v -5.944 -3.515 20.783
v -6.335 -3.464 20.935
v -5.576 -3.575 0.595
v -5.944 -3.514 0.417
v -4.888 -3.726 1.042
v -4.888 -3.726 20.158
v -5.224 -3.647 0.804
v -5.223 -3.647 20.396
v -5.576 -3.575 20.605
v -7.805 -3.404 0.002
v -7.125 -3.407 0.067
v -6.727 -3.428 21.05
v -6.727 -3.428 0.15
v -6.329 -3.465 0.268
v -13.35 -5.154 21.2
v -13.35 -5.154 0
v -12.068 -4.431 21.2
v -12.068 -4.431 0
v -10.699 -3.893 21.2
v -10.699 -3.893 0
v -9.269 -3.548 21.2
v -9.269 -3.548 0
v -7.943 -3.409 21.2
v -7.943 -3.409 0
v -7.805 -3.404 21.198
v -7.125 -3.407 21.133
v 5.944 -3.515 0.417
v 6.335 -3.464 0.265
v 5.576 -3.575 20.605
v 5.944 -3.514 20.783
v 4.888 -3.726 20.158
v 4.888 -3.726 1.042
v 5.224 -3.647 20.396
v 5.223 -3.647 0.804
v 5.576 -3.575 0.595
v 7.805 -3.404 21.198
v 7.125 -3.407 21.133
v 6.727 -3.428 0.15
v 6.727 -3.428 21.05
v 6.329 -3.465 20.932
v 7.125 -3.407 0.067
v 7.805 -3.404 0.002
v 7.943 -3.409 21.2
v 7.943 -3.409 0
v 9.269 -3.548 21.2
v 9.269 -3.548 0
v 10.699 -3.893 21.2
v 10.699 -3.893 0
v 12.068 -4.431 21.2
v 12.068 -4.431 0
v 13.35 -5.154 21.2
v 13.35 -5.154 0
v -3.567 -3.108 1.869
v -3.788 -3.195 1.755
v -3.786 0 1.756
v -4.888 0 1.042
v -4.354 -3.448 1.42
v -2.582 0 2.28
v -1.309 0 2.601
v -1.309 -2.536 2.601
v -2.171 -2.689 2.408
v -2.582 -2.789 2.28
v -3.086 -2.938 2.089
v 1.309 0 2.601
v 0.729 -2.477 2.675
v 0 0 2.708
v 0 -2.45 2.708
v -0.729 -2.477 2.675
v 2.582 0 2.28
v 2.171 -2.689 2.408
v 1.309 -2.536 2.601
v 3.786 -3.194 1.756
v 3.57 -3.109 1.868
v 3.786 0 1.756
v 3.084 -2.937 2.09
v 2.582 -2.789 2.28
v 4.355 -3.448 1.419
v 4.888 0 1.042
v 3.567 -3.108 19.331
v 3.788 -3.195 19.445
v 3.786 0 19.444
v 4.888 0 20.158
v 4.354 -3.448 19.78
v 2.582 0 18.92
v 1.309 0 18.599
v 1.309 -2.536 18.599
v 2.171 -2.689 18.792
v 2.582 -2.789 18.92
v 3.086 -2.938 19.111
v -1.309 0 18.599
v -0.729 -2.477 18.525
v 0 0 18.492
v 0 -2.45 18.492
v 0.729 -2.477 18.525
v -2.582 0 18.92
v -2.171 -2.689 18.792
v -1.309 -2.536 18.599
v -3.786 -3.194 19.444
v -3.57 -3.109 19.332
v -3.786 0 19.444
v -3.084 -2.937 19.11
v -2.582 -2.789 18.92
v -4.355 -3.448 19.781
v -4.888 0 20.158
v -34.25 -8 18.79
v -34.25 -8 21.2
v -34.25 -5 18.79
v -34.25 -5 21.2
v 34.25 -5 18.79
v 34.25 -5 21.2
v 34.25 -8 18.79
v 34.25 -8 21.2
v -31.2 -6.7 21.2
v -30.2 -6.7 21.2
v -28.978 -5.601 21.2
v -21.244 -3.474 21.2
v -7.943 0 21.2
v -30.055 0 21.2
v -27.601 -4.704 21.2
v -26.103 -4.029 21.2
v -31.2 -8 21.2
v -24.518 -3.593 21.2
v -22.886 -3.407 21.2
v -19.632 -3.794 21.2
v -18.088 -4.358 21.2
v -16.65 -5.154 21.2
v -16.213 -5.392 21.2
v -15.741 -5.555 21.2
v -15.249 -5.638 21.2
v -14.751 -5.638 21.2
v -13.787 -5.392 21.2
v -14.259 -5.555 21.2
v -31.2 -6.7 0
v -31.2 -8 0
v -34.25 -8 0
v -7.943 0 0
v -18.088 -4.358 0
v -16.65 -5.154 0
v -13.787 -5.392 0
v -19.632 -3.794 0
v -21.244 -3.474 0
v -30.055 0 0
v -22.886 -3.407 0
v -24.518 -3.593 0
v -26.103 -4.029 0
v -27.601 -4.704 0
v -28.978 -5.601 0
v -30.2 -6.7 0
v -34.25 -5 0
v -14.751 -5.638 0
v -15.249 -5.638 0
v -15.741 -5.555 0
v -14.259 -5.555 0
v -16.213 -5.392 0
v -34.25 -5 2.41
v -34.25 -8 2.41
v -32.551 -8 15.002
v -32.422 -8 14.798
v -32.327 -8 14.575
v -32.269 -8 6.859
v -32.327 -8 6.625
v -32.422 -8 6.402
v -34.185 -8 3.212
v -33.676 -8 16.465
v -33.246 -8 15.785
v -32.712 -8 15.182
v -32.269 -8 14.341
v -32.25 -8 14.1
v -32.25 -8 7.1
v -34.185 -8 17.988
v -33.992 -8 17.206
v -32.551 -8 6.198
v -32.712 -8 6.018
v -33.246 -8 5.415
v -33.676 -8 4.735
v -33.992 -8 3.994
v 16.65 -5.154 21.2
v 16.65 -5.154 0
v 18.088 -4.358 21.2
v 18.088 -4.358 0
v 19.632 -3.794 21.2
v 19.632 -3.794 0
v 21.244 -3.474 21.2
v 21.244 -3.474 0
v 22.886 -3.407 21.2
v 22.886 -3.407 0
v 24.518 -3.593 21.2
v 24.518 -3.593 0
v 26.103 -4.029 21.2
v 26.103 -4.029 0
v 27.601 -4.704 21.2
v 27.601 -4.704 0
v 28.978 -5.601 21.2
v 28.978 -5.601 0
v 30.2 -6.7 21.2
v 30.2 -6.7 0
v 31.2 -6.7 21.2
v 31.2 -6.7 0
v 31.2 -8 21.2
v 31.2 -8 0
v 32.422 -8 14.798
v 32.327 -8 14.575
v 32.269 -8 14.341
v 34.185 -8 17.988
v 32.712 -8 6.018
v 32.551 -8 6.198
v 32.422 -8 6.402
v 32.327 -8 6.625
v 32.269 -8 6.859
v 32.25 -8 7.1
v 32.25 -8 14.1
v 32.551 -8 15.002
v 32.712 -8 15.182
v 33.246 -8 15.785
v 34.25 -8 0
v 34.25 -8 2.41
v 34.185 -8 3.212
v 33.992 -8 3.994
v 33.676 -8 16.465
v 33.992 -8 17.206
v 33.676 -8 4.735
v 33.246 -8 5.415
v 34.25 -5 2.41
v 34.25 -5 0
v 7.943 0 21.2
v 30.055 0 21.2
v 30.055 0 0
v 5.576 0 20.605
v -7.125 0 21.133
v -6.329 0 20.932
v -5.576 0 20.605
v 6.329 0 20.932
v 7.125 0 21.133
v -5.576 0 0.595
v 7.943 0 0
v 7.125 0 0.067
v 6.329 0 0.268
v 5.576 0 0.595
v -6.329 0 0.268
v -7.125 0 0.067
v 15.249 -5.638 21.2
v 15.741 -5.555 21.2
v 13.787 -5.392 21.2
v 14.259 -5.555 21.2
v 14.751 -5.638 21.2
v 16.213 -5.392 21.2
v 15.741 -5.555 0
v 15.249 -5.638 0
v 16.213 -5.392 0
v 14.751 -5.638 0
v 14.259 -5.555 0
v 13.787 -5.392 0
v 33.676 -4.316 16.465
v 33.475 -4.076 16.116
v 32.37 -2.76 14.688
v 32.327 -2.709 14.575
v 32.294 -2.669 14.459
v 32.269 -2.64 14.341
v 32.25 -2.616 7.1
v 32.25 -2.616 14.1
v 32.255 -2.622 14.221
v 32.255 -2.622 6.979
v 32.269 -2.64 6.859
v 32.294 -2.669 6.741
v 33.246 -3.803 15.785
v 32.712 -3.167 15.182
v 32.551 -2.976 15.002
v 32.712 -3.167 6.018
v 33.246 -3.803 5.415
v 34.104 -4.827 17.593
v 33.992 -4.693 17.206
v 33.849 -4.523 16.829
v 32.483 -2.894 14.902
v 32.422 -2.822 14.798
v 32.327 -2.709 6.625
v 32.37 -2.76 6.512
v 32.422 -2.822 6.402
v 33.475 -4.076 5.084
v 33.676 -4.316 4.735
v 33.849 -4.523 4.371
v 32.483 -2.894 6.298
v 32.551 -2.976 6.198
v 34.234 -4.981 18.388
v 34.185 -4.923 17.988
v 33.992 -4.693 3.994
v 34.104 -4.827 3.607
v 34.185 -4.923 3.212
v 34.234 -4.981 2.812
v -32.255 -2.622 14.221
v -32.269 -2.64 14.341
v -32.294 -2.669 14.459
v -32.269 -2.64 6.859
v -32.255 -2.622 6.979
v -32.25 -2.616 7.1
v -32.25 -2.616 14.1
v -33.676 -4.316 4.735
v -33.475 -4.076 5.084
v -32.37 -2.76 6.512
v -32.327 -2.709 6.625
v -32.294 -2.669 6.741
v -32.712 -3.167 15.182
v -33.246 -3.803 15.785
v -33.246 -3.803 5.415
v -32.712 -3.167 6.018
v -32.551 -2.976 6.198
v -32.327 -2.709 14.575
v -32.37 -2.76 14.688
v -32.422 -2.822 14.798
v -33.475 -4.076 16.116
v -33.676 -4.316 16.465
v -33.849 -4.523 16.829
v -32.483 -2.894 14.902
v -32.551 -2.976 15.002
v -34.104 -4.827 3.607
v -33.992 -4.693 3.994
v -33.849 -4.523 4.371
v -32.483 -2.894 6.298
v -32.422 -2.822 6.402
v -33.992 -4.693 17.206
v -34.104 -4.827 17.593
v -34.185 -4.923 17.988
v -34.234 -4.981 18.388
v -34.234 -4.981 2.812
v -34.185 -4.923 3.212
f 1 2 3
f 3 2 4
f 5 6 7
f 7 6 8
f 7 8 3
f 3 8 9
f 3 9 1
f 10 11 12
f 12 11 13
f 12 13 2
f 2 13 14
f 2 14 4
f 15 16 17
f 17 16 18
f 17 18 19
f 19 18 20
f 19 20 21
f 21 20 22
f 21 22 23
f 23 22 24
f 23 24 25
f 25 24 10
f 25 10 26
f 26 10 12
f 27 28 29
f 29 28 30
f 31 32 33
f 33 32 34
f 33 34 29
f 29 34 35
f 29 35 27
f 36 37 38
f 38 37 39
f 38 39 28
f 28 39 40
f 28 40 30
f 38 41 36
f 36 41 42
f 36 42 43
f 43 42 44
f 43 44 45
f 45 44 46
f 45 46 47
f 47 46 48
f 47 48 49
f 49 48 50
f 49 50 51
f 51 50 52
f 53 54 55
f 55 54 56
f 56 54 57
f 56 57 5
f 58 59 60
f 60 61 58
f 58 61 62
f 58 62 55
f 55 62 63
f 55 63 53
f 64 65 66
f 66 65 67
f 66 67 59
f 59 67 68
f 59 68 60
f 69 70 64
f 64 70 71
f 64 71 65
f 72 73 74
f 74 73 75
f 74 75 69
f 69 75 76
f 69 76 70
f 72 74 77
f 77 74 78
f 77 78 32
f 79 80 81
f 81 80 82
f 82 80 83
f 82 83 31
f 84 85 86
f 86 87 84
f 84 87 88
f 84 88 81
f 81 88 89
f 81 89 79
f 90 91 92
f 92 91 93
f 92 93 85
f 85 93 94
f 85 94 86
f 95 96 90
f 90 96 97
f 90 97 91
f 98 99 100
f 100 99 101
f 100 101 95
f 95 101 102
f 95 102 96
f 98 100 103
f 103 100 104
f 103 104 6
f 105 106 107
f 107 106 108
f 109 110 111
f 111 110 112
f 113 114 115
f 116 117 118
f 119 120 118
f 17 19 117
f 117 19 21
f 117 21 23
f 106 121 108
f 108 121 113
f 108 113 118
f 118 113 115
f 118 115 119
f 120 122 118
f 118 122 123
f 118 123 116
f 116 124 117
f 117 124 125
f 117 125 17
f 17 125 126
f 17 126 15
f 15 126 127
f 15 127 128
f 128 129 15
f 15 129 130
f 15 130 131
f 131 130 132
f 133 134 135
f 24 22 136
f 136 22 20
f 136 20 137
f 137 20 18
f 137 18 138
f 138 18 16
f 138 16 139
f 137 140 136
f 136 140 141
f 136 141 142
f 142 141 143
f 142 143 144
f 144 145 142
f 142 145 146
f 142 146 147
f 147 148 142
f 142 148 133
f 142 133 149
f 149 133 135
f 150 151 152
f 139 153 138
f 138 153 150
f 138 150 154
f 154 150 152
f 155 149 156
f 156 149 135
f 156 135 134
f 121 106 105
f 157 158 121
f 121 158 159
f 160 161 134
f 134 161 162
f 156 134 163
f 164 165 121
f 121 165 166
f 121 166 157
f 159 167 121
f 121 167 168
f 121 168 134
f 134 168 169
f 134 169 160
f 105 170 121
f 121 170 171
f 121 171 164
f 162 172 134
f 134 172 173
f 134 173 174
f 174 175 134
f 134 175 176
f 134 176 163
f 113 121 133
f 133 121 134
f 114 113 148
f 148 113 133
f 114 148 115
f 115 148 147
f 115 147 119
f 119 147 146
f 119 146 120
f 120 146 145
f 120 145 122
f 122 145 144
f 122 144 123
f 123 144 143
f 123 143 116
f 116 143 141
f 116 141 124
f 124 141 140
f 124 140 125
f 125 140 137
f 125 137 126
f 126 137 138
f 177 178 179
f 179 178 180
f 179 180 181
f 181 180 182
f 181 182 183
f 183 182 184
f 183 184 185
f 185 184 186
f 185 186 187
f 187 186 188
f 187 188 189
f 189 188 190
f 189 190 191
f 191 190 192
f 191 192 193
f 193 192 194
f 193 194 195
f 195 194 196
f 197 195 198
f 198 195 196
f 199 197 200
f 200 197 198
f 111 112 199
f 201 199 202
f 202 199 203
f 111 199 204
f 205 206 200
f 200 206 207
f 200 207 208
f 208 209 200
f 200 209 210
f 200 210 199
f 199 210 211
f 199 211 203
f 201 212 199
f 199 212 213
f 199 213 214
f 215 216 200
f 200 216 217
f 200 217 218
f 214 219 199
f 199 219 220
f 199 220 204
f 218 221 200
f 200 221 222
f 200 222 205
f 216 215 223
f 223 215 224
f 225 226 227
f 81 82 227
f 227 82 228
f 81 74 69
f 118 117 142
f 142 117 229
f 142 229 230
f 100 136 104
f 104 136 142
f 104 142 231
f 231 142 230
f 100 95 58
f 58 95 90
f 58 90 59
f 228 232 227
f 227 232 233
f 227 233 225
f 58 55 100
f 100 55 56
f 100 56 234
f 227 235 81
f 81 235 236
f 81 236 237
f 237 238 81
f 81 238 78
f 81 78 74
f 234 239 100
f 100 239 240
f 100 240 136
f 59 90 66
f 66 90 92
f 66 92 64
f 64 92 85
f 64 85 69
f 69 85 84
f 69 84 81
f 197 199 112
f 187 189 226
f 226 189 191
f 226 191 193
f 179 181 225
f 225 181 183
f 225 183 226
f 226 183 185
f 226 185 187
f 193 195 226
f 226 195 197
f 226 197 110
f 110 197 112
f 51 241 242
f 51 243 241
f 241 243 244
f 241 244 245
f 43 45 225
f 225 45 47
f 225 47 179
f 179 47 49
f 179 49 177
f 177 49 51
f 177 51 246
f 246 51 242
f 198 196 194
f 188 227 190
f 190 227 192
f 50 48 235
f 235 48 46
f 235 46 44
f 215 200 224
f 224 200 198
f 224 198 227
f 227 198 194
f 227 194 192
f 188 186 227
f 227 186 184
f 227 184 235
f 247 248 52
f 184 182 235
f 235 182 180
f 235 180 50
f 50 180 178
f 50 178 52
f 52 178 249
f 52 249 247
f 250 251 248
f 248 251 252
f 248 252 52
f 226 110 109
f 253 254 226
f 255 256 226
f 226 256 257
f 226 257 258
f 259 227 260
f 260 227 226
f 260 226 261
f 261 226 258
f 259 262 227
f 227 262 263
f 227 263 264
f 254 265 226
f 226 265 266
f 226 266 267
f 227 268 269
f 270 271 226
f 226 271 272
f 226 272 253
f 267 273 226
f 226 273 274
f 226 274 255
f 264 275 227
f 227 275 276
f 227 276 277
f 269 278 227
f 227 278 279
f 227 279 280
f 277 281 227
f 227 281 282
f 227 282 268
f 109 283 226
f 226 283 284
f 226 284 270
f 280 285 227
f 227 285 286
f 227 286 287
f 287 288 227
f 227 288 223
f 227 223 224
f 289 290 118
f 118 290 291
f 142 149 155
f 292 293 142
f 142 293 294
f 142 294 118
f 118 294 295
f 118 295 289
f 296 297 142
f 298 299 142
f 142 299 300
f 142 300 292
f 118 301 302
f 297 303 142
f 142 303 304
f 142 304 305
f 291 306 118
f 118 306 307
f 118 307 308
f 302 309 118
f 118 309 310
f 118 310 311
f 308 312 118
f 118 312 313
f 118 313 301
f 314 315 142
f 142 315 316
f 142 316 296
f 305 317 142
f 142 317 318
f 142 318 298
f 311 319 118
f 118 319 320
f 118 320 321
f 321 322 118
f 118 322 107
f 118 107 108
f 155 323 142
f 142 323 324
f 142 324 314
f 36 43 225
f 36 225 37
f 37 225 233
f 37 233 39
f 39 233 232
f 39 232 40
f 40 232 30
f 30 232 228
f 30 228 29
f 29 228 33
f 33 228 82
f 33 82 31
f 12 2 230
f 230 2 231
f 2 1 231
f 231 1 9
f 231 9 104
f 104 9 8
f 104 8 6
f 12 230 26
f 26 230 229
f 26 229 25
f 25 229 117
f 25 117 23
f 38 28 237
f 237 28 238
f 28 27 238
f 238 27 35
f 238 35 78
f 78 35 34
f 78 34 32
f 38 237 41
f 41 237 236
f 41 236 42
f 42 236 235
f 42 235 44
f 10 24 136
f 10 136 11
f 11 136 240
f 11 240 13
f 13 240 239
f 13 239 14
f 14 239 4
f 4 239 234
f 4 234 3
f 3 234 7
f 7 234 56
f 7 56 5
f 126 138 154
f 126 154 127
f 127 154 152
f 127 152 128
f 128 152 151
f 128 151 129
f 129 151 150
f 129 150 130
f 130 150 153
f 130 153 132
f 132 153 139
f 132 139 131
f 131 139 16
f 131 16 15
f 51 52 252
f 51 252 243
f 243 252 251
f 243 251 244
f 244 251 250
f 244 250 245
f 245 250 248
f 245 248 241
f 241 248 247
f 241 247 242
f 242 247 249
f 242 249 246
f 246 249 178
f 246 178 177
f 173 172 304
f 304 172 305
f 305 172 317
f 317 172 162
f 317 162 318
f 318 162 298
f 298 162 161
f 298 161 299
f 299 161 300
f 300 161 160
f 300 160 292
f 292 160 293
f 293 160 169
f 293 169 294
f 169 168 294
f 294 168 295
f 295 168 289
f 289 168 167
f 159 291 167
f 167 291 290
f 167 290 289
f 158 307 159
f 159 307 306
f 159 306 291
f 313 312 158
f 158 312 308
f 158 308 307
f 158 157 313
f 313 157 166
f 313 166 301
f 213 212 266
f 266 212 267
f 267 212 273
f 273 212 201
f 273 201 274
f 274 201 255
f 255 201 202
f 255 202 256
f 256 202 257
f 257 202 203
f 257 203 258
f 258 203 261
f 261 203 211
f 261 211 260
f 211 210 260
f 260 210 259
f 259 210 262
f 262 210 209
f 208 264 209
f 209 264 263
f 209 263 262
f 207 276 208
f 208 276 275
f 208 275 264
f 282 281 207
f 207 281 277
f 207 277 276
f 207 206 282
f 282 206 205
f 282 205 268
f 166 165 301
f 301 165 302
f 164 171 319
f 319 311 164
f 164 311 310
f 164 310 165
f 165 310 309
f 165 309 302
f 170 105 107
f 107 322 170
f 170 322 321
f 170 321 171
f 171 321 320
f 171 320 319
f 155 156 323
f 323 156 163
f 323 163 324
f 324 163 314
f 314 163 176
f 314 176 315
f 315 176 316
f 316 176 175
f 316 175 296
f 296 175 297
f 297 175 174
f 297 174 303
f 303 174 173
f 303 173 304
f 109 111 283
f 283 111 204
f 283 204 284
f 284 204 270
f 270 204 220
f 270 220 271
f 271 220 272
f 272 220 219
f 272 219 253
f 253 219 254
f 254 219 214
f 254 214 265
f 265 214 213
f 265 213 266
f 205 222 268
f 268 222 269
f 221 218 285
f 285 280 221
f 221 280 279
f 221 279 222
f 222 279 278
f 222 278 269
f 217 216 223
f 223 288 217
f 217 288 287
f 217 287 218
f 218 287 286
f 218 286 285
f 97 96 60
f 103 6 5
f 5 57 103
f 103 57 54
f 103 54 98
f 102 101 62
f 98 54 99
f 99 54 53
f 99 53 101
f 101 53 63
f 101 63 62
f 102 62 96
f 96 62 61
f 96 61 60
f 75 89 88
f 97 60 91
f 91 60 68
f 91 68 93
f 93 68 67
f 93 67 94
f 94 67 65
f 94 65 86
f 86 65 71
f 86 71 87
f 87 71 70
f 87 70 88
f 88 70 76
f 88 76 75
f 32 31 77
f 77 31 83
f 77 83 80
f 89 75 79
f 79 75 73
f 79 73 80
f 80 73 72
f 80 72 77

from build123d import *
from OCP.BRepFilletAPI import BRepFilletAPI_MakeChamfer

# Parameters (mm, degrees)
BOSS_EXTRUDE2_DEPTH = 21.2
CHAMFER1_SIZE       = 5
CHAMFER1_SIZE2      = 4.195498156
CUT_EXTRUDE1_DEPTH  = 42.067048835
FILLET2_R           = 5
FILLET3_R           = 3
CUT_EXTRUDE2_DEPTH  = 42.067048989
FILLET4_R           = 5
CUT_EXTRUDE3_DEPTH  = 42.067048989


with BuildPart() as part:
    # Sketch4 → Boss-Extrude2 (new body)
    with BuildSketch(Plane.XY):
        with BuildLine():
            Line((-34.25, 0), (34.25, 0))
            Line((34.25, 0), (34.25, -8))
            Line((34.25, -8), (31.2, -8))
            Line((31.2, -8), (31.2, -6.7))
            Line((31.2, -6.7), (30.2, -6.7))
            ThreePointArc((30.2, -6.7), (22.642993845, -3.400961512), (15, -6.49557652))
            ThreePointArc((15, -6.49557652), (7.5, -3.4), (0, -6.49557652))
            ThreePointArc((0, -6.49557652), (-7.5, -3.4), (-15, -6.49557652))
            ThreePointArc((-15, -6.49557652), (-22.642993845, -3.400961512), (-30.2, -6.7))
            Line((-30.2, -6.7), (-31.2, -6.7))
            Line((-31.2, -6.7), (-31.2, -8))
            Line((-31.2, -8), (-34.25, -8))
            Line((-34.25, -8), (-34.25, 0))
        make_face()
    extrude(amount=BOSS_EXTRUDE2_DEPTH)

    # Chamfer1: one chamfer whose edges measure the first distance from different faces: ONE call of the kernel's chamfer builder (chamfer() names one face for all edges)
    chamfer1_edges_1 = [part.edges().sort_by_distance(p)[0] for p in [
        (-34.25, 0, 10.6),
    ]]
    chamfer1_side_1 = [part.faces().sort_by_distance(p)[0] for p in [
        (-34.25, -4, 10.6),
    ]]
    chamfer1_edges_2 = [part.edges().sort_by_distance(p)[0] for p in [
        (34.25, 0, 10.6),
    ]]
    chamfer1_side_2 = [part.faces().sort_by_distance(p)[0] for p in [
        (34.25, -4, 10.6),
    ]]
    chamfer1 = BRepFilletAPI_MakeChamfer(part.part.solid().wrapped)
    for e in chamfer1_edges_1:
        chamfer1.Add(CHAMFER1_SIZE, CHAMFER1_SIZE2, e.wrapped, chamfer1_side_1[0].wrapped)  # the first distance lies on this face
    for e in chamfer1_edges_2:
        chamfer1.Add(CHAMFER1_SIZE, CHAMFER1_SIZE2, e.wrapped, chamfer1_side_2[0].wrapped)  # the first distance lies on this face
    add(Compound.cast(chamfer1.Shape()), mode=Mode.REPLACE)

    # Sketch5 → Cut-Extrude1 (cut, through all)
    with BuildSketch(Plane(origin=(0, 0, 0), x_dir=(1, 0, 0), z_dir=(0, 1, 0))):
        with BuildLine():
            Line((-6, 0), (6, 0))
            ThreePointArc((6, 0), (0, -2.708497378), (-6, 0))
        make_face()
        with BuildLine():
            Line((-6, -21.2), (6, -21.2))
            ThreePointArc((6, -21.2), (0, -18.491502622), (-6, -21.2))
        make_face()
    extrude(amount=-CUT_EXTRUDE1_DEPTH, mode=Mode.SUBTRACT)

    # Fillet2
    fillet2_edges = [part.edges().sort_by_distance(p)[0] for p in [
        (6, -1.753165508, 21.2),
        (-6, -1.753165508, 21.2),
        (-6, -1.753165508, 0),
        (6, -1.753165508, 0),
    ]]
    fillet(fillet2_edges, radius=FILLET2_R)

    # Fillet3
    fillet3_edges = [part.edges().sort_by_distance(p)[0] for p in [
        (-15, -6.49557652, 10.6),
        (0, -6.49557652, 10.6),
        (15, -6.49557652, 10.6),
    ]]
    fillet(fillet3_edges, radius=FILLET3_R)

    # Sketch6 → Cut-Extrude2 (cut, through all)
    with BuildSketch(Plane(origin=(0, 0, 0), x_dir=(1, 0, 0), z_dir=(0, 1, 0))):
        with BuildLine():
            Line((34.25, -5.6), (33.75, -5.6))
            ThreePointArc((33.75, -5.6), (32.689339828, -6.039339828), (32.25, -7.1))
            Line((32.25, -7.1), (32.25, -14.1))
            ThreePointArc((32.25, -14.1), (32.689339828, -15.160660172), (33.75, -15.6))
            Line((33.75, -15.6), (34.25, -15.6))
            Line((34.25, -15.6), (34.25, -5.6))
        make_face()
        with BuildLine():
            Line((-32.25, -7.1), (-32.25, -14.1))
            ThreePointArc((-32.25, -14.1), (-32.689339828, -15.160660172), (-33.75, -15.6))
            Line((-33.75, -15.6), (-34.25, -15.6))
            Line((-34.25, -15.6), (-34.25, -5.6))
            Line((-34.25, -5.6), (-33.75, -5.6))
            ThreePointArc((-33.75, -5.6), (-32.689339828, -6.039339828), (-32.25, -7.1))
        make_face()
    extrude(amount=-CUT_EXTRUDE2_DEPTH, mode=Mode.SUBTRACT)

    # Fillet4
    # the kernel refuses this fillet: 5 mm, written as the material it takes off along each edge
    with BuildSketch(Plane(origin=(-34.25, 2.9760394, 15.6), x_dir=(0, 0, 1), z_dir=(0, -1, 0)), Plane(origin=(34.25, 2.9760394, 5.6), x_dir=(0, 0, -1), z_dir=(0, -1, 0))) as fillet4_piece_1:
        with BuildLine():
            CenterArc((3.19041576, -5), FILLET4_R, 90, 46.18693854)
            Line((-0.417596363, -1.538461538), (-0.778397575, -1.192307692))
            ThreePointArc((-0.778397575, -1.192307692), (-0.5, -0.5), (-0.5, 0))
            Line((-0.5, 0), (0, 0.5))
            Line((0, 0.5), (3.19041576, 0.5))
            Line((3.19041576, 0.5), (3.19041576, 0))
        make_face()
    extrude(amount=18.952078799, mode=Mode.SUBTRACT)
    with BuildSketch(Plane(origin=(-34.25, 2.9760394, 5.6), x_dir=(0, 0, -1), z_dir=(0, -1, 0)), Plane(origin=(34.25, 2.9760394, 15.6), x_dir=(0, 0, 1), z_dir=(0, -1, 0))) as fillet4_piece_2:
        with BuildLine():
            CenterArc((3.19041576, 5), FILLET4_R, 223.81306146, 46.18693854)
            Line((-0.417596363, 1.538461538), (-0.778397575, 1.192307692))
            ThreePointArc((-0.778397575, 1.192307692), (-0.5, 0.5), (-0.5, 0))
            Line((-0.5, 0), (0, -0.5))
            Line((0, -0.5), (3.19041576, -0.5))
            Line((3.19041576, -0.5), (3.19041576, 0))
        make_face()
    extrude(amount=18.952078799, mode=Mode.SUBTRACT)

    # Sketch7 → Cut-Extrude3 (cut, through all)
    with BuildSketch(Plane.XY):
        with BuildLine():
            ThreePointArc((-4.887756907, -3.725862072), (0, -2.449957006), (4.887756907, -3.725862072))
            ThreePointArc((4.887756907, -3.725862072), (3.209259906, -4.304133612), (1.650366748, -5.153605376))
            ThreePointArc((1.650366748, -5.153605376), (0, -5.648352974), (-1.650366748, -5.153605376))
            ThreePointArc((-1.650366748, -5.153605376), (-3.209259906, -4.304133612), (-4.887756907, -3.725862072))
        make_face()
    extrude(amount=CUT_EXTRUDE3_DEPTH, mode=Mode.SUBTRACT)


solid = part.part
